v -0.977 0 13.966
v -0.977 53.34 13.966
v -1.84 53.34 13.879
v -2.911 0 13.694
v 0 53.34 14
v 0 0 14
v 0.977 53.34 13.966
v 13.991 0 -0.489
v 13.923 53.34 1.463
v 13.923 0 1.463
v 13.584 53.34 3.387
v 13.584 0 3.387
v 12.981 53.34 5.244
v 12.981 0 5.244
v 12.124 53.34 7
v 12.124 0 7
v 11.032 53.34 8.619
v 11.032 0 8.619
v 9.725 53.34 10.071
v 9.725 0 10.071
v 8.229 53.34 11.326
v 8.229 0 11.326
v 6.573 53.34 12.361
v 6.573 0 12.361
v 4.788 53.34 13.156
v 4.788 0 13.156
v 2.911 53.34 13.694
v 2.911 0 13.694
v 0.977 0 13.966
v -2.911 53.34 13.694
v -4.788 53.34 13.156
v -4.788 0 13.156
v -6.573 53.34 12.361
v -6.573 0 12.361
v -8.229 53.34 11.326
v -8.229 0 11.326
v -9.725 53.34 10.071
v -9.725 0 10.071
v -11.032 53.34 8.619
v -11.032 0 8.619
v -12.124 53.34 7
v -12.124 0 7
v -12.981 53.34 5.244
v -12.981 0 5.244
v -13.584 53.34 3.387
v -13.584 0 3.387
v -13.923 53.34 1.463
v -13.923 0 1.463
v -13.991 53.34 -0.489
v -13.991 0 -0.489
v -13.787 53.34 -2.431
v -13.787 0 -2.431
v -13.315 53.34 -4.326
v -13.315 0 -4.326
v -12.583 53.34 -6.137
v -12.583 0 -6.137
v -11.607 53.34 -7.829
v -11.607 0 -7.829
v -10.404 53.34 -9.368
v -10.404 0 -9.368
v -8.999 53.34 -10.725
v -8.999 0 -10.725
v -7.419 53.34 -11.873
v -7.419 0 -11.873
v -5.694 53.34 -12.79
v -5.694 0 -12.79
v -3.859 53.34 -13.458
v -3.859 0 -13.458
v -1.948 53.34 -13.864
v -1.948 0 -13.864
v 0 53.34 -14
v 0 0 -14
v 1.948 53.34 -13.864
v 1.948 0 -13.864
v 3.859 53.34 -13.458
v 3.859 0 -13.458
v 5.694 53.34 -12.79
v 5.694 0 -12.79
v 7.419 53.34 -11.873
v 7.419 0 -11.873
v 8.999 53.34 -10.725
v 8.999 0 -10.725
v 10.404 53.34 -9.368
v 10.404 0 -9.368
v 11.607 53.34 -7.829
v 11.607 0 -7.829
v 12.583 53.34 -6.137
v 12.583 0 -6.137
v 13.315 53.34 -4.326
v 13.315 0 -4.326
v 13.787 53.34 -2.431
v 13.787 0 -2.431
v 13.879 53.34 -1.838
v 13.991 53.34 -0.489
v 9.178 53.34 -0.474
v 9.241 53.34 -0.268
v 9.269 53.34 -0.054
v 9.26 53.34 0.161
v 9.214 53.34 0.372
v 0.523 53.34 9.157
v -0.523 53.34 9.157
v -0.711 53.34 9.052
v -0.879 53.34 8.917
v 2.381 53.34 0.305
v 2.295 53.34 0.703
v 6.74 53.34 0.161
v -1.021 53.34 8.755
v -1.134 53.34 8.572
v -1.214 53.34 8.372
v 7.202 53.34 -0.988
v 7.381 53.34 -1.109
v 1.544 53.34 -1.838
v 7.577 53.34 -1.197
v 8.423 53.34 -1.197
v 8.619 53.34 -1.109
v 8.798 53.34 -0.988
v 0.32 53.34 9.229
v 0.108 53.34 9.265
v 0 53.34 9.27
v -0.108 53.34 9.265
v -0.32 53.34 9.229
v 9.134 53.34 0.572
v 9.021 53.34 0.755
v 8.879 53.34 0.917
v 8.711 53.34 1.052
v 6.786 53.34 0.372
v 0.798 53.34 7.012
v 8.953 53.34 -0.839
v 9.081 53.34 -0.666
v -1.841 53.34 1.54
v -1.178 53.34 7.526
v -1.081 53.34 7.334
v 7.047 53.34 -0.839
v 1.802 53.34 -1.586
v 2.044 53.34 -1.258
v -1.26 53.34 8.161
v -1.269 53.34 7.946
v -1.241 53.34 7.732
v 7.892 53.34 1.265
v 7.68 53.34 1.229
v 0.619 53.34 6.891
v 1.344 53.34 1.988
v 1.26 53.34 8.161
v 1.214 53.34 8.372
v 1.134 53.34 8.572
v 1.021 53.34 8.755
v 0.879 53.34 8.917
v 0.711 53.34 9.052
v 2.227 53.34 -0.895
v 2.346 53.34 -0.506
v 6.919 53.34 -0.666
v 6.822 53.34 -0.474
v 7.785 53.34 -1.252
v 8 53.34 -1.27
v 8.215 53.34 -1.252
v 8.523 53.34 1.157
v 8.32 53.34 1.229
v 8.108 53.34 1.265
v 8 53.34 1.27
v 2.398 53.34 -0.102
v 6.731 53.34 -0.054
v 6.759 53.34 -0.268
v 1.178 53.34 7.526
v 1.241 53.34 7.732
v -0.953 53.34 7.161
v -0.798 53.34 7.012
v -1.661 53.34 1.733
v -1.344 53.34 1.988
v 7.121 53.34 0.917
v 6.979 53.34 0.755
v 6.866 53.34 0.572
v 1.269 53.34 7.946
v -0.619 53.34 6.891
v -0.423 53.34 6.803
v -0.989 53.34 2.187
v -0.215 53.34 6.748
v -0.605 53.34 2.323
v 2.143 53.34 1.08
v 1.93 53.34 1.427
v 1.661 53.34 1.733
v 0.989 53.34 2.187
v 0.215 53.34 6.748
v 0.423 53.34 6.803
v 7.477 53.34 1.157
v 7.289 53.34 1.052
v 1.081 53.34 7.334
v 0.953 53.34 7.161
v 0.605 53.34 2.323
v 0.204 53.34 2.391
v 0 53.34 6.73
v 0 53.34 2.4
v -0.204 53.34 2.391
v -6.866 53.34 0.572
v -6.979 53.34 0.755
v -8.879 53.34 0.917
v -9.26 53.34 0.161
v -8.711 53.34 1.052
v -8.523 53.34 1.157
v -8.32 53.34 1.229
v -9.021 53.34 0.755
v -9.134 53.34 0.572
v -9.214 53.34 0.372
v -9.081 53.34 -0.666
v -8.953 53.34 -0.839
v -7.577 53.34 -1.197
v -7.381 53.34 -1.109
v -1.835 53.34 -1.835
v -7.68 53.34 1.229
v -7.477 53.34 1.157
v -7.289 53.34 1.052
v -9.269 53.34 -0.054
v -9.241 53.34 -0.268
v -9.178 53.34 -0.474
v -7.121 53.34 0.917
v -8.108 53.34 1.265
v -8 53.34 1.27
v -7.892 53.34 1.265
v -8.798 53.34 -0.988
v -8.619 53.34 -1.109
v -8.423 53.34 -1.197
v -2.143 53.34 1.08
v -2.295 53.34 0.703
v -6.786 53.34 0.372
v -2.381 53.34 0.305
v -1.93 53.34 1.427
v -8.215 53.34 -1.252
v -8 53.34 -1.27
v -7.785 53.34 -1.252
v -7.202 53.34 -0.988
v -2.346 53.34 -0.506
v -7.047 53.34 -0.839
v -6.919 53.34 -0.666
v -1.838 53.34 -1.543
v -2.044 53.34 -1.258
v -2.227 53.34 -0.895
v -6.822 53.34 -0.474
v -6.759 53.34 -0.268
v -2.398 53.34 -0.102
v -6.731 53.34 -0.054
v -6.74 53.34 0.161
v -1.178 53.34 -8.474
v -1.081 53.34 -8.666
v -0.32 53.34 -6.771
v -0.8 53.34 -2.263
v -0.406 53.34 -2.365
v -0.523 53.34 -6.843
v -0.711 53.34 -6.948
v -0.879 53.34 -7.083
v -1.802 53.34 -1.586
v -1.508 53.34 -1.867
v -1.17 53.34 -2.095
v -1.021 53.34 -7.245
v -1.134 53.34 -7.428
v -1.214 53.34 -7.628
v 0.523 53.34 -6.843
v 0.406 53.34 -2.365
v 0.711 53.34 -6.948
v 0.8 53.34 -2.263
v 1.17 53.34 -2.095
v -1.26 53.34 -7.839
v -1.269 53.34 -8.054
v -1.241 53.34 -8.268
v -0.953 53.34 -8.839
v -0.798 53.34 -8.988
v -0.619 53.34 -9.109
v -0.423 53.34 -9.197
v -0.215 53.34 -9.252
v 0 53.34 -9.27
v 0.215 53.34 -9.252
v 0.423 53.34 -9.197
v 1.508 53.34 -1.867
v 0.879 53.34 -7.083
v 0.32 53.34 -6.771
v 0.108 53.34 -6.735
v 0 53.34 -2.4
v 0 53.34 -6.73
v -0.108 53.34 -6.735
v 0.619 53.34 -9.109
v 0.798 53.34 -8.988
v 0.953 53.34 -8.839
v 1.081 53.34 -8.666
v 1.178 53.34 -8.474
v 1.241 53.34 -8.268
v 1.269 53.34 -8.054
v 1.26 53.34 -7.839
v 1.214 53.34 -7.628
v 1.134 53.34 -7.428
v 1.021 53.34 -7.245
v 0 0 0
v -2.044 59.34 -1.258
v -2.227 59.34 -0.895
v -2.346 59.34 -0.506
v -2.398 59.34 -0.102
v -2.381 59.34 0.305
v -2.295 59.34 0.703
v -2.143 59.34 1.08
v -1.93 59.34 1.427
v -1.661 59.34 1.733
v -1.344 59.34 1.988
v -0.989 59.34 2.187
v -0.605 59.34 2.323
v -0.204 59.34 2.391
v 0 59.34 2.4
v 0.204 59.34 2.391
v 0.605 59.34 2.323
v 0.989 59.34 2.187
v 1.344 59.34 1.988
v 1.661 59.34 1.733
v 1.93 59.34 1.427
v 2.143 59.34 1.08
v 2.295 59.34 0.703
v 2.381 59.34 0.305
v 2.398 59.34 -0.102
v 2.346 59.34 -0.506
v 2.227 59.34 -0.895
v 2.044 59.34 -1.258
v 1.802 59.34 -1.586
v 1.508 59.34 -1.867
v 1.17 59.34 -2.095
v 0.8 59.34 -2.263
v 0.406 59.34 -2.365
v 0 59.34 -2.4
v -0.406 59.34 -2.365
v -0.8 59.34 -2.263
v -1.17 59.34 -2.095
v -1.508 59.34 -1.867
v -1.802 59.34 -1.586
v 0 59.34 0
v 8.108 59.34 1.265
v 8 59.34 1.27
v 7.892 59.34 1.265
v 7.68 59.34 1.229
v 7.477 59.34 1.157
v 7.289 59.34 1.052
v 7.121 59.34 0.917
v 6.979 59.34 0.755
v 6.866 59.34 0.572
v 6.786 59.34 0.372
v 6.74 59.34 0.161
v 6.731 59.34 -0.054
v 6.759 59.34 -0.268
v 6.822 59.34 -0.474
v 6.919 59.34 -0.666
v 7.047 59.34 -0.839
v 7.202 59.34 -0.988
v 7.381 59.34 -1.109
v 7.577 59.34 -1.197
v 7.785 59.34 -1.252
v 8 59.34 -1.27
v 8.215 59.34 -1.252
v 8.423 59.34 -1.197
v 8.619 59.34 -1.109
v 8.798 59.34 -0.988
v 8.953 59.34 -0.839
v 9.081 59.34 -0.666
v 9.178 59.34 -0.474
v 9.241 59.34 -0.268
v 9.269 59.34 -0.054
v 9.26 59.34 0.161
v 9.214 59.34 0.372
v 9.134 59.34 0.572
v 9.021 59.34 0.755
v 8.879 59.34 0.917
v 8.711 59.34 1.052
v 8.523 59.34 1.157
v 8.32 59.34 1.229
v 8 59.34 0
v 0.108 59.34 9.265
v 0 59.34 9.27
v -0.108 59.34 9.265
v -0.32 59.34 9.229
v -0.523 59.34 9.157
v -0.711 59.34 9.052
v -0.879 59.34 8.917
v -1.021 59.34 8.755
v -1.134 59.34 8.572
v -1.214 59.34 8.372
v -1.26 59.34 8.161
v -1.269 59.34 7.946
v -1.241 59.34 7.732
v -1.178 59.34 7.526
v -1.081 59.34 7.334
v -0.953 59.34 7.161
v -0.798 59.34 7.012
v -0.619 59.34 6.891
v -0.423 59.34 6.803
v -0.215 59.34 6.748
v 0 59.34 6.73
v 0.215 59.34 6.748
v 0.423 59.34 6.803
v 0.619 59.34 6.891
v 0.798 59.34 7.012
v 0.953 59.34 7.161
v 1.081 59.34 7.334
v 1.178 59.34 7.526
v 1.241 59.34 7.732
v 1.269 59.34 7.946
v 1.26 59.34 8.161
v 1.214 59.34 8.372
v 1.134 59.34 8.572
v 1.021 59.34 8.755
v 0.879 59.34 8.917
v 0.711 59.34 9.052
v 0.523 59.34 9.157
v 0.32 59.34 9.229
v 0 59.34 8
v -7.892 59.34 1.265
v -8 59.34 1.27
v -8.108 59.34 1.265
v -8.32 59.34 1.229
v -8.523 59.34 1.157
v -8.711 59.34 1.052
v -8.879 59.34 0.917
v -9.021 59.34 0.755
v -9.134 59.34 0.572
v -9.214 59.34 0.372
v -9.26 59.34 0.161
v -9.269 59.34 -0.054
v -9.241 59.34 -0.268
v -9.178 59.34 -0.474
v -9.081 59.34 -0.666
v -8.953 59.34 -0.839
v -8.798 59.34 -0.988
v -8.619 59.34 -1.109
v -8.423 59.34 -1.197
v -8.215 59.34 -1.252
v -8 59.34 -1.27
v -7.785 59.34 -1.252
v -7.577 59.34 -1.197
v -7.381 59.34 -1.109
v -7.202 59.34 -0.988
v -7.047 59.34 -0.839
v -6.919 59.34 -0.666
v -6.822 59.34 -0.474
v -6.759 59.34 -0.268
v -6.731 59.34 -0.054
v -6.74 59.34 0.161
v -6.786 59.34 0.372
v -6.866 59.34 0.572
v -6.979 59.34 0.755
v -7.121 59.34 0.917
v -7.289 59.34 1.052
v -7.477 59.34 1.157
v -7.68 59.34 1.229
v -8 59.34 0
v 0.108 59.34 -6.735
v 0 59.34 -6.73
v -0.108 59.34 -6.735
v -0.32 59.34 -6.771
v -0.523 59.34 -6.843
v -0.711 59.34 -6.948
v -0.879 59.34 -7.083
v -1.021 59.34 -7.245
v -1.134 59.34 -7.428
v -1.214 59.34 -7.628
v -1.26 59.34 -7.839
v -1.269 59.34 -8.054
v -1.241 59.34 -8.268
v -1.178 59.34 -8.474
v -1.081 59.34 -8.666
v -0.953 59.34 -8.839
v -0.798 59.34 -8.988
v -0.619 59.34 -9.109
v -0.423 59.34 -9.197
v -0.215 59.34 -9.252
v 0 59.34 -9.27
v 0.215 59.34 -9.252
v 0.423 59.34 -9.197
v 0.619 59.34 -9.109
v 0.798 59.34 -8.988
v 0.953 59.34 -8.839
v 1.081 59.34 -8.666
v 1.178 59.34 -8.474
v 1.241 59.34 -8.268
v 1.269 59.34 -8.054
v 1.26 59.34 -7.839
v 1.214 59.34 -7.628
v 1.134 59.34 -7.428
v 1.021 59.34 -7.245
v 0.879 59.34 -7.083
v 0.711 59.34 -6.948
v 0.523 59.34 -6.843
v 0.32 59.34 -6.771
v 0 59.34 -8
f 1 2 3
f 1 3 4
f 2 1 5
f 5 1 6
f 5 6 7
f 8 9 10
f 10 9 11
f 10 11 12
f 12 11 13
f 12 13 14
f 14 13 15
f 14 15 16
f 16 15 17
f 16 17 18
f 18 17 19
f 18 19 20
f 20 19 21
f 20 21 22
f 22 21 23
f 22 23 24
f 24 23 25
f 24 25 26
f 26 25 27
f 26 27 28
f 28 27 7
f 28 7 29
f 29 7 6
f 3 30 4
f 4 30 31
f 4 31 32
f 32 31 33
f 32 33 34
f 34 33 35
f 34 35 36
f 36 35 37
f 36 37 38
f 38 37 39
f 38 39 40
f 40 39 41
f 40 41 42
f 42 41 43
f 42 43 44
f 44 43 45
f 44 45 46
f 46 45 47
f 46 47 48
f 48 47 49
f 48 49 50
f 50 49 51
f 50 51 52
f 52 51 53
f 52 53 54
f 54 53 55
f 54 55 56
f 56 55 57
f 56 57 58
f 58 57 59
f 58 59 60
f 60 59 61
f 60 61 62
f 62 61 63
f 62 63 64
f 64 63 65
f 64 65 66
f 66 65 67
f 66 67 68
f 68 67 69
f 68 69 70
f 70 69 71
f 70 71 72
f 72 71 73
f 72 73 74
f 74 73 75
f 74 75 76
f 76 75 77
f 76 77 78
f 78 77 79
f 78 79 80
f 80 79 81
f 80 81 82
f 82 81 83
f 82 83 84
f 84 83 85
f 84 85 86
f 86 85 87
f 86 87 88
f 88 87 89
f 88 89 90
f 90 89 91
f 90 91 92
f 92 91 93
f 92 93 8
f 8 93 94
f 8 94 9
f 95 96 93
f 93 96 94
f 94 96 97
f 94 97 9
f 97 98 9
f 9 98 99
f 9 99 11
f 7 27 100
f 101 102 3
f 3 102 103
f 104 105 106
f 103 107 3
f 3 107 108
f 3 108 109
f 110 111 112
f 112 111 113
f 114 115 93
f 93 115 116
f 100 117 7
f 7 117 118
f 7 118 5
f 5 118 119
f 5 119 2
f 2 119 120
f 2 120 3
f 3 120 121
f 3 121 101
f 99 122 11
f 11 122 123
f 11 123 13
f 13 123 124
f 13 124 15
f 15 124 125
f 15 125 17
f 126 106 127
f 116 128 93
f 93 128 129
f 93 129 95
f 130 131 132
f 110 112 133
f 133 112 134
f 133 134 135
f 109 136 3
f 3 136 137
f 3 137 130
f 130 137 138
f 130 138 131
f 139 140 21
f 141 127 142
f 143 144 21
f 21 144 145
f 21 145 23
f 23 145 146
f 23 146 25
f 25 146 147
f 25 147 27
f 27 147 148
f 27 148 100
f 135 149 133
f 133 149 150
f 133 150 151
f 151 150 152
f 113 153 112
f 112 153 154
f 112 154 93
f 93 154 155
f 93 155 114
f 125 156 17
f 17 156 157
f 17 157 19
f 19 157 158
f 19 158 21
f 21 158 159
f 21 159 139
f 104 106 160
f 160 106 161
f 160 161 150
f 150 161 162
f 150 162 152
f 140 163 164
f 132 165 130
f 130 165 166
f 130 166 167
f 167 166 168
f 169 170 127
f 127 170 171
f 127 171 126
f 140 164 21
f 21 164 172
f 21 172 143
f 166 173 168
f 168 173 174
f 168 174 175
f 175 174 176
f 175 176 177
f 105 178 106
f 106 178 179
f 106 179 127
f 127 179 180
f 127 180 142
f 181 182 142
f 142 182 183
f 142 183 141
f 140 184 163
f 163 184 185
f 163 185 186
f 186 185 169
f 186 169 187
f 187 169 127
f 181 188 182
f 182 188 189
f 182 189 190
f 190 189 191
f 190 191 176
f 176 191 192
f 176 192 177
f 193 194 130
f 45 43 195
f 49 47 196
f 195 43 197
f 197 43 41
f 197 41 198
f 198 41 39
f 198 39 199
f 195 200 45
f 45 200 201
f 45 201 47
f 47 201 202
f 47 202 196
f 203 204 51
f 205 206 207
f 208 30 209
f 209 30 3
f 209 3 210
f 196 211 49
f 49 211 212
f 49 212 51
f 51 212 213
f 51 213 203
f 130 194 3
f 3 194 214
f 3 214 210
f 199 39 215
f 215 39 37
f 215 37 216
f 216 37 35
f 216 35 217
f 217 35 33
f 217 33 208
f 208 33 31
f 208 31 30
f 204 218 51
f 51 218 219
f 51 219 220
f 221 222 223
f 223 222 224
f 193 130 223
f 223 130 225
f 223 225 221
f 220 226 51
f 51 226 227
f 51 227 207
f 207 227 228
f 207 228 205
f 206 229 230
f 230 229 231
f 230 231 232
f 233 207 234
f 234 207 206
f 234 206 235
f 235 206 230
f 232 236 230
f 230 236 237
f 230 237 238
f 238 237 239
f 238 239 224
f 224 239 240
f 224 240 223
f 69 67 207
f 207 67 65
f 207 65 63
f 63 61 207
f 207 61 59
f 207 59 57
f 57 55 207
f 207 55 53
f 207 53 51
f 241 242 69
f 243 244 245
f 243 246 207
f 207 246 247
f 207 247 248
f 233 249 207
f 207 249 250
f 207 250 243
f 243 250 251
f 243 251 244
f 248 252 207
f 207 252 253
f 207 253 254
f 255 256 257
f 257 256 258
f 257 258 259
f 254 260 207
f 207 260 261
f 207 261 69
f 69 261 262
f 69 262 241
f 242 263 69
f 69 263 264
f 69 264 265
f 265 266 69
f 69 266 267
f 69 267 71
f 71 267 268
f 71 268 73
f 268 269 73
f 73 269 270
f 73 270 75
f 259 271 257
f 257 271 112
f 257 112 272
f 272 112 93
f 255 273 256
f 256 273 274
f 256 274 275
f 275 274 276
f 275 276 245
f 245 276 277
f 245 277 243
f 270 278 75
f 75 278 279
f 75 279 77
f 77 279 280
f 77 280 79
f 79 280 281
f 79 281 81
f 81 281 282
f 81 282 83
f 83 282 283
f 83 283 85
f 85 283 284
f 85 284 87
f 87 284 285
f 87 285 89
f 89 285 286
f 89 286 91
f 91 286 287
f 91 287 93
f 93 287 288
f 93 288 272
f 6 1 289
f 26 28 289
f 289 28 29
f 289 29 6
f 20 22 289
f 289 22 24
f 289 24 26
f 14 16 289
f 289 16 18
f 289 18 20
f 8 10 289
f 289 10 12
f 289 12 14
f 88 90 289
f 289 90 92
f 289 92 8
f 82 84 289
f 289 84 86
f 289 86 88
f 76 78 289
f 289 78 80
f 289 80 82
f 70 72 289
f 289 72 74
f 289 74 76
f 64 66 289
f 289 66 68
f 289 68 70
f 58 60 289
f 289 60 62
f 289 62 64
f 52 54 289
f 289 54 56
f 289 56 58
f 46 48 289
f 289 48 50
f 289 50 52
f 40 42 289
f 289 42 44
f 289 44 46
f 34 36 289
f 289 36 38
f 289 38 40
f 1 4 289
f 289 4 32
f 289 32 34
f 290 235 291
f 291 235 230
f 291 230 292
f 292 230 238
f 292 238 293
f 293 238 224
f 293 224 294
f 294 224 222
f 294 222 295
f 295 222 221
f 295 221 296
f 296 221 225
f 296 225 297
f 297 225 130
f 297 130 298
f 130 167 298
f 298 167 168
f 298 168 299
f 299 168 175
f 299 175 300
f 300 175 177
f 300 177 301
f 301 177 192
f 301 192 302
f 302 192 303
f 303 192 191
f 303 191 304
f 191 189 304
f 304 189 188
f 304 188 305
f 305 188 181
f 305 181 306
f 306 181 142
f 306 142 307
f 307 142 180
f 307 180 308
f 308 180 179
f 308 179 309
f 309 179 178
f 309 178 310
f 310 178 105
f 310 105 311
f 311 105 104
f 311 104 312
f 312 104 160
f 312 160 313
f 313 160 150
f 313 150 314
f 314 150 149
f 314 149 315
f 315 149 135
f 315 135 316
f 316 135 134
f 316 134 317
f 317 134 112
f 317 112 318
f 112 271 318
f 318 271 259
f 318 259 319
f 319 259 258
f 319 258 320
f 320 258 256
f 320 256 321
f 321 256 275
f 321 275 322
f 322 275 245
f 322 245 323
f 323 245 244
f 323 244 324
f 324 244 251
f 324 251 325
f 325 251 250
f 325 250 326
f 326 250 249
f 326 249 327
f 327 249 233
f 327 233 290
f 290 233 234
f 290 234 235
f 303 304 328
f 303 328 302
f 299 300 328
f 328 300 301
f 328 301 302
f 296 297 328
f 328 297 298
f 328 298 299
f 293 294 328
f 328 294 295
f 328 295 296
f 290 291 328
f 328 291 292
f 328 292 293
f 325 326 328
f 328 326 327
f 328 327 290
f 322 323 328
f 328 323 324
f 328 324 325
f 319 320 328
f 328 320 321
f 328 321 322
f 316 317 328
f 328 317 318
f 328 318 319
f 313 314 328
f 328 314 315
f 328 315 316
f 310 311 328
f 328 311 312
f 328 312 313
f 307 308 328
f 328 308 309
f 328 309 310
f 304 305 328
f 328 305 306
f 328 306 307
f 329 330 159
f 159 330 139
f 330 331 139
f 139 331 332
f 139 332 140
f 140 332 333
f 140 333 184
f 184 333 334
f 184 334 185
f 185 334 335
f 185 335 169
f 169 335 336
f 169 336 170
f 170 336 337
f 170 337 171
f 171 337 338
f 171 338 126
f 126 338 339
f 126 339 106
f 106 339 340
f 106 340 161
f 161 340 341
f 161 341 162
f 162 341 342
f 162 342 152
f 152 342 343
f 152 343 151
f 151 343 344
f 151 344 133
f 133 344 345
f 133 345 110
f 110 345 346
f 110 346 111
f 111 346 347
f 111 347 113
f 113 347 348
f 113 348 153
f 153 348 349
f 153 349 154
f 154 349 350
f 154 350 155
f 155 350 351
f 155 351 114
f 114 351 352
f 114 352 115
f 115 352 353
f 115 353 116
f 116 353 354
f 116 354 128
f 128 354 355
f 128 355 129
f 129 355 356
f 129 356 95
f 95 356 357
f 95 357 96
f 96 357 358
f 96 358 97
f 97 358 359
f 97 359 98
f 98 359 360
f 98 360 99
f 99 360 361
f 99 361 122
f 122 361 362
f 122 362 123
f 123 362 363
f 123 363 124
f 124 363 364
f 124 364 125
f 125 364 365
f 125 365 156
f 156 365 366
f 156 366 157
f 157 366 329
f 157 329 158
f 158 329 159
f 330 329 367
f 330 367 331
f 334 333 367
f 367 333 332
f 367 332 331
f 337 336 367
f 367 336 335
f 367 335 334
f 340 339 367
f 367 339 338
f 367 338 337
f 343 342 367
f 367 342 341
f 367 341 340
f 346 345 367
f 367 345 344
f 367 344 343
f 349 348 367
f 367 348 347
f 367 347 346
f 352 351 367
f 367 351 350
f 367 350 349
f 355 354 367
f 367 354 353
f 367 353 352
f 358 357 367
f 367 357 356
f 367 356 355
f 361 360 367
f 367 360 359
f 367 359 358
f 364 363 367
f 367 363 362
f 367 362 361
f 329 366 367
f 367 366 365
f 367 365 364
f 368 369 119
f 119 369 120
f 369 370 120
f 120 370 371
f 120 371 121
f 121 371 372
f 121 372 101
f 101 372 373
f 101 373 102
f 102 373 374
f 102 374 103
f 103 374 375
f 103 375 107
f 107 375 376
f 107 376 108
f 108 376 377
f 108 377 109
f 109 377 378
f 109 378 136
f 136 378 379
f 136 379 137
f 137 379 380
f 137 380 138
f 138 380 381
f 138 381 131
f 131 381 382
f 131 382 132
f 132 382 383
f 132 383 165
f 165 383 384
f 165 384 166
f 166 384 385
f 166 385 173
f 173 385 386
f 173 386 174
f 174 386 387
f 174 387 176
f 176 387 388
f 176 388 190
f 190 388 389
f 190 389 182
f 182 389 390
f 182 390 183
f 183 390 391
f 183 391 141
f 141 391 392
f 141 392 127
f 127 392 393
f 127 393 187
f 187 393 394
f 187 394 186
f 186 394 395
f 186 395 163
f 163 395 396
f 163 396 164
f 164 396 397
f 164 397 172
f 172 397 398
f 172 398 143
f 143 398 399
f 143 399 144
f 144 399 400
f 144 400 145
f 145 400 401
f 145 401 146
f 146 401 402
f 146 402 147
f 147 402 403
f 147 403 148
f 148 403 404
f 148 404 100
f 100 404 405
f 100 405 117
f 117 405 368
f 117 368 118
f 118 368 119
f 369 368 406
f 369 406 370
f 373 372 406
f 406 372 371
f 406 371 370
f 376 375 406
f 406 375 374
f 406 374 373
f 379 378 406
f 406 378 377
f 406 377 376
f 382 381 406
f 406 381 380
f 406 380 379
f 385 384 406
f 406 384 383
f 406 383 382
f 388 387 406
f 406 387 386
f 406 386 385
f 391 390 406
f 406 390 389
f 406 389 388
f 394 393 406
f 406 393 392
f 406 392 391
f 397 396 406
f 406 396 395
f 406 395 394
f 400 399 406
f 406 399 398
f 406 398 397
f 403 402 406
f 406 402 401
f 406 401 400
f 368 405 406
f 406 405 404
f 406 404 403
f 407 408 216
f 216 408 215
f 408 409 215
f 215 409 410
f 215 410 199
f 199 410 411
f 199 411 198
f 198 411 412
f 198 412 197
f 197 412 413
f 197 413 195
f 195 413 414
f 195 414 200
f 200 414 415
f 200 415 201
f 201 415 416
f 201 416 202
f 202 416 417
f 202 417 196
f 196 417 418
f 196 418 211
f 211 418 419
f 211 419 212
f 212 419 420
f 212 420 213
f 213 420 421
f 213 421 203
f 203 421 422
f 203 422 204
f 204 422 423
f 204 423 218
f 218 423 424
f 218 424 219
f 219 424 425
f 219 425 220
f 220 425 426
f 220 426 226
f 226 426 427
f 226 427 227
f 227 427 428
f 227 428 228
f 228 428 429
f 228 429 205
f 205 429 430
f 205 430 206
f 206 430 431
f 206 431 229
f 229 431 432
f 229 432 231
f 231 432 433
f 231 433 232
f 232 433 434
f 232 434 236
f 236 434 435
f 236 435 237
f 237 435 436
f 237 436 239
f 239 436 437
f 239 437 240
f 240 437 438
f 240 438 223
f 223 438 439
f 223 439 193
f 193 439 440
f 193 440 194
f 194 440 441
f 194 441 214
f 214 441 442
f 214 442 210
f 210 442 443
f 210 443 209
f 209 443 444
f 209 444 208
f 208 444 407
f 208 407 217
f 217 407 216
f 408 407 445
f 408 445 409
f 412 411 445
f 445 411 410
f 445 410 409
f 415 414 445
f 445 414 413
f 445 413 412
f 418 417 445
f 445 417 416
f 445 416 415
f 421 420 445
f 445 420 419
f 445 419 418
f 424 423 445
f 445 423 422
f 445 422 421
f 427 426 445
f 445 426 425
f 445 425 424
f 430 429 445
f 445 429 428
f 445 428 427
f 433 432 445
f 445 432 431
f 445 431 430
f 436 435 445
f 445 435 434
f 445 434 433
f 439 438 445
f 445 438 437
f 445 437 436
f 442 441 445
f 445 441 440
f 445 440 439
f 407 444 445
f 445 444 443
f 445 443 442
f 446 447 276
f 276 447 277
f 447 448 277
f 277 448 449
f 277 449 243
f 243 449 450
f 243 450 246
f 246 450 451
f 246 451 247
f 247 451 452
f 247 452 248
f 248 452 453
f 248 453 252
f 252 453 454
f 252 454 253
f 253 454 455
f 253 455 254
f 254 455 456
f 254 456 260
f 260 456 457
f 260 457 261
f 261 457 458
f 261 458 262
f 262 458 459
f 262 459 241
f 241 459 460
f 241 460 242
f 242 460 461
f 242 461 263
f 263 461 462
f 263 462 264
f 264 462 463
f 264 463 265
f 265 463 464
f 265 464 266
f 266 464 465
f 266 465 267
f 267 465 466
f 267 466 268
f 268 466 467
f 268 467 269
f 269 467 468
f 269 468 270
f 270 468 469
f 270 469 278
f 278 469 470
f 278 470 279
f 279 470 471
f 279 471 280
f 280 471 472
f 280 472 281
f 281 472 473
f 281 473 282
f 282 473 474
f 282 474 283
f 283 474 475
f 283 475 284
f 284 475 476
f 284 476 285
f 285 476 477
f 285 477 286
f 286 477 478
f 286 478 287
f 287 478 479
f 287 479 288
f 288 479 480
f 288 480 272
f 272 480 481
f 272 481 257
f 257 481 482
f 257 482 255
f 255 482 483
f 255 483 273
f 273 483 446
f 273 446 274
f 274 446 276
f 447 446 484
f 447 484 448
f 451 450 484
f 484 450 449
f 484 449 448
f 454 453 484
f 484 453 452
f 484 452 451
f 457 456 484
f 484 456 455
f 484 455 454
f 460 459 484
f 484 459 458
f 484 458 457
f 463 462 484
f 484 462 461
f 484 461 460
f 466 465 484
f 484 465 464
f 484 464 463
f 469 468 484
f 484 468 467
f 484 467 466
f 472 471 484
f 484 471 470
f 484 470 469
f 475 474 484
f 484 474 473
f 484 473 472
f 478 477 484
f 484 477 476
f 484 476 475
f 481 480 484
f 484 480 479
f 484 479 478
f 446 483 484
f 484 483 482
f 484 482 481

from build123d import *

# Parameters (mm, degrees)
SKETCH1_R           = 14
BOSS_EXTRUDE1_DEPTH = 53.34
SKETCH2_R           = 2.4
SKETCH2_R_2         = 1.27
BOSS_EXTRUDE2_DEPTH = 6


with BuildPart() as part:
    # Sketch1 → Boss-Extrude1 (new body)
    with BuildSketch(Plane(origin=(0, 0, 0), x_dir=(1, 0, 0), z_dir=(0, 1, 0))):
        with Locations(Location((0, 0, 0), (0, 0, 270))):
            Circle(SKETCH1_R)
    extrude(amount=BOSS_EXTRUDE1_DEPTH)

    # Sketch2 → Boss-Extrude2 (add)
    with BuildSketch(Plane(origin=(0, 53.34, 0), x_dir=(1, 0, 0), z_dir=(0, 1, 0))):
        with Locations(Location((0, 0, 0), (0, 0, 270))):
            Circle(SKETCH2_R)
        with Locations(Location((8, 0, 0), (0, 0, 270))):
            Circle(SKETCH2_R_2)
        with Locations(Location((0, -8, 0), (0, 0, 270))):
            Circle(SKETCH2_R_2)
        with Locations(Location((-8, 0, 0), (0, 0, 270))):
            Circle(SKETCH2_R_2)
        with Locations(Location((0, 8, 0), (0, 0, 270))):
            Circle(SKETCH2_R_2)
    extrude(amount=BOSS_EXTRUDE2_DEPTH)


solid = part.part
